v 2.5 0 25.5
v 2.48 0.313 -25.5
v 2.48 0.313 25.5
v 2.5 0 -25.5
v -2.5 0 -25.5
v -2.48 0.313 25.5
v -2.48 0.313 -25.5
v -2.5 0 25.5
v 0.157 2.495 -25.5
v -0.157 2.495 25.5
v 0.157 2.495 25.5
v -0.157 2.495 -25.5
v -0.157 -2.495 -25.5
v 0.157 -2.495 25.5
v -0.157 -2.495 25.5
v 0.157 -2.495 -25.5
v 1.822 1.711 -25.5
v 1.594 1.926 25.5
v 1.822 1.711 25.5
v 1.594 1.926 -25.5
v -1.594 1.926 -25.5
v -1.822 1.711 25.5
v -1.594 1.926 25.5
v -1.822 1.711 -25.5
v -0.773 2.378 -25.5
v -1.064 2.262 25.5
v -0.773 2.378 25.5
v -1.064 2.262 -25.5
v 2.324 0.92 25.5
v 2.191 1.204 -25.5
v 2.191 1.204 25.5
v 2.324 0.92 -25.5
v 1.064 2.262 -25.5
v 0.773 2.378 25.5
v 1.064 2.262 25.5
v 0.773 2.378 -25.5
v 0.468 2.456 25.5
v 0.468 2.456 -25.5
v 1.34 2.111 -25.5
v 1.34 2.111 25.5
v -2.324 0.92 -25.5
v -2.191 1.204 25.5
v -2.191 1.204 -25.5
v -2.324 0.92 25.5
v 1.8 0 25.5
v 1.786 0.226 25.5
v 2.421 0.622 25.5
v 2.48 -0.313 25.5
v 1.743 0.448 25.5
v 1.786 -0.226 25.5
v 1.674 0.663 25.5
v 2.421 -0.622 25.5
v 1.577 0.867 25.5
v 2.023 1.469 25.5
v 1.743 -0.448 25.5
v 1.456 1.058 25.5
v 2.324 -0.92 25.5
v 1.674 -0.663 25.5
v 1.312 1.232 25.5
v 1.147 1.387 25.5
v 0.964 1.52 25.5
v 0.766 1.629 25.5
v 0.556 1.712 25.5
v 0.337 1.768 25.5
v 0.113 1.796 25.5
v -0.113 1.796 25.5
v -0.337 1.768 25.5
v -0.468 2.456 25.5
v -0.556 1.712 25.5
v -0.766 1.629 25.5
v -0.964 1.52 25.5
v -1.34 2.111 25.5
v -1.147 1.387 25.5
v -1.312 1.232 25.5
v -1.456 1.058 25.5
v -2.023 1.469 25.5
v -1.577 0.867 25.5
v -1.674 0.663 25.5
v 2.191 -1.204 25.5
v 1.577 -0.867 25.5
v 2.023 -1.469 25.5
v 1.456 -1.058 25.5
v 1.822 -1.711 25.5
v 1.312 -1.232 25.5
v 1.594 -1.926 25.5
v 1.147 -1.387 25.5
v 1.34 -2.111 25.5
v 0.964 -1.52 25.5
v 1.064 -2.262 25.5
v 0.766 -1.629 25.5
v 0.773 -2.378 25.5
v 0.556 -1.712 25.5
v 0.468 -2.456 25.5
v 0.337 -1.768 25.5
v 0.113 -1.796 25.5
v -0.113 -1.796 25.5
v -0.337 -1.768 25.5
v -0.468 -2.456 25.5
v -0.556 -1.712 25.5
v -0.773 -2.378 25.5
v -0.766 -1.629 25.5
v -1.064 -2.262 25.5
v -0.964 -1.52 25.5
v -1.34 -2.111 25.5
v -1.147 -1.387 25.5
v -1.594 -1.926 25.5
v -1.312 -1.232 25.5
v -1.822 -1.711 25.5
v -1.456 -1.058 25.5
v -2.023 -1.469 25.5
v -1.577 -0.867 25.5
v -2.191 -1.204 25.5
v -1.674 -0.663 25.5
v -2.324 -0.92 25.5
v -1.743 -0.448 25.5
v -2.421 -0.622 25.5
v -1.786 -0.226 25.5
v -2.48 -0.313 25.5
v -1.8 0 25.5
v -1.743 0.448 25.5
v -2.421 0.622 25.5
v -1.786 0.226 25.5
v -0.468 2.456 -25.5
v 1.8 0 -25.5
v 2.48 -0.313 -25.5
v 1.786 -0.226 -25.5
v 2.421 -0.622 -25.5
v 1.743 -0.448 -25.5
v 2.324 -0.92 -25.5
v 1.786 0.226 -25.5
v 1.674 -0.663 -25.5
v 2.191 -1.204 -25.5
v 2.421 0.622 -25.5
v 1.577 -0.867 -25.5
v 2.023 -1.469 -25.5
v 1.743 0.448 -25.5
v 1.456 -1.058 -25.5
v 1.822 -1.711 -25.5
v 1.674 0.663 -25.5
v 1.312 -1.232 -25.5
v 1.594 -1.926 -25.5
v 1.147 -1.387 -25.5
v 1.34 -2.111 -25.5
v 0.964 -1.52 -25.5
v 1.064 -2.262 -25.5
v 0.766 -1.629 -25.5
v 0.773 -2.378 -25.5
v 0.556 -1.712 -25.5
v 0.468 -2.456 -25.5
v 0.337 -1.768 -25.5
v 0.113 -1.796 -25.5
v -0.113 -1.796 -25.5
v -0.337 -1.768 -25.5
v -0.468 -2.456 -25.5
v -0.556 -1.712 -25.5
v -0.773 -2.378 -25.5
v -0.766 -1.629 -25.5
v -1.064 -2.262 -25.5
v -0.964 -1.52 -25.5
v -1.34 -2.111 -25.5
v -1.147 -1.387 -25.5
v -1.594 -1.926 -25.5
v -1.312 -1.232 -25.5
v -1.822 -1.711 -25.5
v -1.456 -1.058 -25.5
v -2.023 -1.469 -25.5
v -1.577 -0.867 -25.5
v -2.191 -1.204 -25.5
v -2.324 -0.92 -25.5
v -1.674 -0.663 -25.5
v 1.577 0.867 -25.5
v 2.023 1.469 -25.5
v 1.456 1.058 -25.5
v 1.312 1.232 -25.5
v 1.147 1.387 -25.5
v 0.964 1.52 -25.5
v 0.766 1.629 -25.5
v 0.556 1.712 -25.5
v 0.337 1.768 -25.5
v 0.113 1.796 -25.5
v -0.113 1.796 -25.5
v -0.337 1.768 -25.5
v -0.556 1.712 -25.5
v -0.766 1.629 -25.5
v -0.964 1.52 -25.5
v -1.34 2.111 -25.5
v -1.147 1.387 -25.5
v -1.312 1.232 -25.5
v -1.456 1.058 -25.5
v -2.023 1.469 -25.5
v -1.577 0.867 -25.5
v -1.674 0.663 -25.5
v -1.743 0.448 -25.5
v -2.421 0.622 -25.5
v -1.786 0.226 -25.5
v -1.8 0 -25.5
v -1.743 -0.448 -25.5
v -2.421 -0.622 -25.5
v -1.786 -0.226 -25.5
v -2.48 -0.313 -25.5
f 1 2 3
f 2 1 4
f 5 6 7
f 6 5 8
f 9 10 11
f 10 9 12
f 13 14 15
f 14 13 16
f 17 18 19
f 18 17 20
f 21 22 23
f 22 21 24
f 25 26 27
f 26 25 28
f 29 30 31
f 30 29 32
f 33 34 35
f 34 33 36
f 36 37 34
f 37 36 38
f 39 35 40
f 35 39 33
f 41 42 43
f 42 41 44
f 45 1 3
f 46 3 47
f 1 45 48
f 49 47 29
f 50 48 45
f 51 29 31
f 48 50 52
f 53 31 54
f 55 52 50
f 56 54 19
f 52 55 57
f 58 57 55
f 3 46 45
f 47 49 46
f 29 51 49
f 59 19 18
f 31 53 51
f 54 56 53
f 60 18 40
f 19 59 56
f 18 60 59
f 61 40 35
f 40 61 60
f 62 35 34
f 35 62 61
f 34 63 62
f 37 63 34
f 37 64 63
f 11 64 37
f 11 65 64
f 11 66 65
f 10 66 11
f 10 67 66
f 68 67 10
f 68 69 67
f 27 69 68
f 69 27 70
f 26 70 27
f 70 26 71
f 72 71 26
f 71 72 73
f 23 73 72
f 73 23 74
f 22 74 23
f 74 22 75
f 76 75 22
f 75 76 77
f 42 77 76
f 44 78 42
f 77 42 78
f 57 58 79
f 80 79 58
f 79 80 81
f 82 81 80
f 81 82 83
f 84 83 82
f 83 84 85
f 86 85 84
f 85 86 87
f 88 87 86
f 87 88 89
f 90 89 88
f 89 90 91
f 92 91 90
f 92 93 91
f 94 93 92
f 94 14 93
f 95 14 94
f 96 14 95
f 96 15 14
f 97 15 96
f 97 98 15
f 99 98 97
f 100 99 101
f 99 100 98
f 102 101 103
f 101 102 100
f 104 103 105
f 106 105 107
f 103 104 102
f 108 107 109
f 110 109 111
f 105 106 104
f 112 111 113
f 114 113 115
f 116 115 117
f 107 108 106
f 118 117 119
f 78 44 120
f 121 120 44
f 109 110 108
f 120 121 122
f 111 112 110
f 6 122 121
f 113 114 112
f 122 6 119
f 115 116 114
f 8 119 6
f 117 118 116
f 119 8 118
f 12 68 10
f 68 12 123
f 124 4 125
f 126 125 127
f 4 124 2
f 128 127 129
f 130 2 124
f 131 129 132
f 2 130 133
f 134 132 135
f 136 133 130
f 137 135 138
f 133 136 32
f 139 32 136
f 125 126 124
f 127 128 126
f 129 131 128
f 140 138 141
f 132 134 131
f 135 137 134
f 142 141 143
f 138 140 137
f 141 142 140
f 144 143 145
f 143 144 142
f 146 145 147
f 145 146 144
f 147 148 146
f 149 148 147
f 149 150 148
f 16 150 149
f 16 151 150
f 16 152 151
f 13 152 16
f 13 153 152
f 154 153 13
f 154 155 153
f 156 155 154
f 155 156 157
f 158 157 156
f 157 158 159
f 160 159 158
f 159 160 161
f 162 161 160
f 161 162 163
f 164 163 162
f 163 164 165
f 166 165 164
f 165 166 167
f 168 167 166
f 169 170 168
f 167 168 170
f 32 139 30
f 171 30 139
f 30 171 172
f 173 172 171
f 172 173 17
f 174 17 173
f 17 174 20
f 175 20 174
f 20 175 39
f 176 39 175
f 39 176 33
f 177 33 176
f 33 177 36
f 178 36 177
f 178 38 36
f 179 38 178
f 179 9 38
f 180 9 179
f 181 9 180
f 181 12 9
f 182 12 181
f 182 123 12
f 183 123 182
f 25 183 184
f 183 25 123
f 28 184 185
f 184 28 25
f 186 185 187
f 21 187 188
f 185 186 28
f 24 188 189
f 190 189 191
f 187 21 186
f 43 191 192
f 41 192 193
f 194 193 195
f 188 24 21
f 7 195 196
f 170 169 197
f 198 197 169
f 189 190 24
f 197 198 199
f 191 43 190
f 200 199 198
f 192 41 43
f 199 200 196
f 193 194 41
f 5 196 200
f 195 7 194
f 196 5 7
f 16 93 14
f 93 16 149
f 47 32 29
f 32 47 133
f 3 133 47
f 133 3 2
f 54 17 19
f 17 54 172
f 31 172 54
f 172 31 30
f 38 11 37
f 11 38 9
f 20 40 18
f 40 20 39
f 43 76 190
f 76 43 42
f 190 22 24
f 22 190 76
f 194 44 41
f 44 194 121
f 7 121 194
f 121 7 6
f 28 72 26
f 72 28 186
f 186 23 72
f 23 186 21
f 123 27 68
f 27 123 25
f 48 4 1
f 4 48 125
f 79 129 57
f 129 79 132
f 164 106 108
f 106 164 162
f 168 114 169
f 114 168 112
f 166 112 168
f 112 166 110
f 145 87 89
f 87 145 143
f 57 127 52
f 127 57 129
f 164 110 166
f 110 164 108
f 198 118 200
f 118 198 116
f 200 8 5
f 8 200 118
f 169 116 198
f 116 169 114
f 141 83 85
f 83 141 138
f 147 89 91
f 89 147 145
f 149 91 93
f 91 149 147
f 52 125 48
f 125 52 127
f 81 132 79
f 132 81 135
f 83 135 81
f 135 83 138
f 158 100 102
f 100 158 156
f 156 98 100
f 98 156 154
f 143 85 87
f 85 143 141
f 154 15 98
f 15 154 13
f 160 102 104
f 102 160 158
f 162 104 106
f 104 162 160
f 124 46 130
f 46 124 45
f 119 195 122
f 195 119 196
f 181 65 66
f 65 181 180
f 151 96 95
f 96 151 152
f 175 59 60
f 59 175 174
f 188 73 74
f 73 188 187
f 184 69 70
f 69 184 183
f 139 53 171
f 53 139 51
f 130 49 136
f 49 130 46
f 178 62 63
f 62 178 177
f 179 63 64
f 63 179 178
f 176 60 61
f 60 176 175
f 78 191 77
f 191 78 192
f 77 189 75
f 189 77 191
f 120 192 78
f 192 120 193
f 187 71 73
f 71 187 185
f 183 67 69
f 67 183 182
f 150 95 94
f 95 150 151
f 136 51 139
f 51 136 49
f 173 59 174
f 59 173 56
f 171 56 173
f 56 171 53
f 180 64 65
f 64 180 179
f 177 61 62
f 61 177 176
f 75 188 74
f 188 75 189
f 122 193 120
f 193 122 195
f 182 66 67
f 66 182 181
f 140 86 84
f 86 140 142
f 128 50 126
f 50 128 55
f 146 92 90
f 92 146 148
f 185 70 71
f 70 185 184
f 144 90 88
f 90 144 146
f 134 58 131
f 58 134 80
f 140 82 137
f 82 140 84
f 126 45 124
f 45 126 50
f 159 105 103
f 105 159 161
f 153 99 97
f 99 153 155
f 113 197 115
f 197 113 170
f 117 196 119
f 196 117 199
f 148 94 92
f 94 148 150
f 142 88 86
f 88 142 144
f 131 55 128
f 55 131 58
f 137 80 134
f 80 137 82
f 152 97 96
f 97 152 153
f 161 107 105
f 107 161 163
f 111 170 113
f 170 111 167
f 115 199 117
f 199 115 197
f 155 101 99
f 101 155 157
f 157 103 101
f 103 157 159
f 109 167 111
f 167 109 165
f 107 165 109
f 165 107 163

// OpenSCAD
$fn = 50;


difference() {
	union() {
		translate(v = [0, 0, -25.5000000000]) {
			cylinder(h = 51, r = 2.5000000000);
		}
	}
	union() {
		translate(v = [0, 0, -100.0000000000]) {
			cylinder(h = 200, r = 1.8000000000);
		}
	}
}
